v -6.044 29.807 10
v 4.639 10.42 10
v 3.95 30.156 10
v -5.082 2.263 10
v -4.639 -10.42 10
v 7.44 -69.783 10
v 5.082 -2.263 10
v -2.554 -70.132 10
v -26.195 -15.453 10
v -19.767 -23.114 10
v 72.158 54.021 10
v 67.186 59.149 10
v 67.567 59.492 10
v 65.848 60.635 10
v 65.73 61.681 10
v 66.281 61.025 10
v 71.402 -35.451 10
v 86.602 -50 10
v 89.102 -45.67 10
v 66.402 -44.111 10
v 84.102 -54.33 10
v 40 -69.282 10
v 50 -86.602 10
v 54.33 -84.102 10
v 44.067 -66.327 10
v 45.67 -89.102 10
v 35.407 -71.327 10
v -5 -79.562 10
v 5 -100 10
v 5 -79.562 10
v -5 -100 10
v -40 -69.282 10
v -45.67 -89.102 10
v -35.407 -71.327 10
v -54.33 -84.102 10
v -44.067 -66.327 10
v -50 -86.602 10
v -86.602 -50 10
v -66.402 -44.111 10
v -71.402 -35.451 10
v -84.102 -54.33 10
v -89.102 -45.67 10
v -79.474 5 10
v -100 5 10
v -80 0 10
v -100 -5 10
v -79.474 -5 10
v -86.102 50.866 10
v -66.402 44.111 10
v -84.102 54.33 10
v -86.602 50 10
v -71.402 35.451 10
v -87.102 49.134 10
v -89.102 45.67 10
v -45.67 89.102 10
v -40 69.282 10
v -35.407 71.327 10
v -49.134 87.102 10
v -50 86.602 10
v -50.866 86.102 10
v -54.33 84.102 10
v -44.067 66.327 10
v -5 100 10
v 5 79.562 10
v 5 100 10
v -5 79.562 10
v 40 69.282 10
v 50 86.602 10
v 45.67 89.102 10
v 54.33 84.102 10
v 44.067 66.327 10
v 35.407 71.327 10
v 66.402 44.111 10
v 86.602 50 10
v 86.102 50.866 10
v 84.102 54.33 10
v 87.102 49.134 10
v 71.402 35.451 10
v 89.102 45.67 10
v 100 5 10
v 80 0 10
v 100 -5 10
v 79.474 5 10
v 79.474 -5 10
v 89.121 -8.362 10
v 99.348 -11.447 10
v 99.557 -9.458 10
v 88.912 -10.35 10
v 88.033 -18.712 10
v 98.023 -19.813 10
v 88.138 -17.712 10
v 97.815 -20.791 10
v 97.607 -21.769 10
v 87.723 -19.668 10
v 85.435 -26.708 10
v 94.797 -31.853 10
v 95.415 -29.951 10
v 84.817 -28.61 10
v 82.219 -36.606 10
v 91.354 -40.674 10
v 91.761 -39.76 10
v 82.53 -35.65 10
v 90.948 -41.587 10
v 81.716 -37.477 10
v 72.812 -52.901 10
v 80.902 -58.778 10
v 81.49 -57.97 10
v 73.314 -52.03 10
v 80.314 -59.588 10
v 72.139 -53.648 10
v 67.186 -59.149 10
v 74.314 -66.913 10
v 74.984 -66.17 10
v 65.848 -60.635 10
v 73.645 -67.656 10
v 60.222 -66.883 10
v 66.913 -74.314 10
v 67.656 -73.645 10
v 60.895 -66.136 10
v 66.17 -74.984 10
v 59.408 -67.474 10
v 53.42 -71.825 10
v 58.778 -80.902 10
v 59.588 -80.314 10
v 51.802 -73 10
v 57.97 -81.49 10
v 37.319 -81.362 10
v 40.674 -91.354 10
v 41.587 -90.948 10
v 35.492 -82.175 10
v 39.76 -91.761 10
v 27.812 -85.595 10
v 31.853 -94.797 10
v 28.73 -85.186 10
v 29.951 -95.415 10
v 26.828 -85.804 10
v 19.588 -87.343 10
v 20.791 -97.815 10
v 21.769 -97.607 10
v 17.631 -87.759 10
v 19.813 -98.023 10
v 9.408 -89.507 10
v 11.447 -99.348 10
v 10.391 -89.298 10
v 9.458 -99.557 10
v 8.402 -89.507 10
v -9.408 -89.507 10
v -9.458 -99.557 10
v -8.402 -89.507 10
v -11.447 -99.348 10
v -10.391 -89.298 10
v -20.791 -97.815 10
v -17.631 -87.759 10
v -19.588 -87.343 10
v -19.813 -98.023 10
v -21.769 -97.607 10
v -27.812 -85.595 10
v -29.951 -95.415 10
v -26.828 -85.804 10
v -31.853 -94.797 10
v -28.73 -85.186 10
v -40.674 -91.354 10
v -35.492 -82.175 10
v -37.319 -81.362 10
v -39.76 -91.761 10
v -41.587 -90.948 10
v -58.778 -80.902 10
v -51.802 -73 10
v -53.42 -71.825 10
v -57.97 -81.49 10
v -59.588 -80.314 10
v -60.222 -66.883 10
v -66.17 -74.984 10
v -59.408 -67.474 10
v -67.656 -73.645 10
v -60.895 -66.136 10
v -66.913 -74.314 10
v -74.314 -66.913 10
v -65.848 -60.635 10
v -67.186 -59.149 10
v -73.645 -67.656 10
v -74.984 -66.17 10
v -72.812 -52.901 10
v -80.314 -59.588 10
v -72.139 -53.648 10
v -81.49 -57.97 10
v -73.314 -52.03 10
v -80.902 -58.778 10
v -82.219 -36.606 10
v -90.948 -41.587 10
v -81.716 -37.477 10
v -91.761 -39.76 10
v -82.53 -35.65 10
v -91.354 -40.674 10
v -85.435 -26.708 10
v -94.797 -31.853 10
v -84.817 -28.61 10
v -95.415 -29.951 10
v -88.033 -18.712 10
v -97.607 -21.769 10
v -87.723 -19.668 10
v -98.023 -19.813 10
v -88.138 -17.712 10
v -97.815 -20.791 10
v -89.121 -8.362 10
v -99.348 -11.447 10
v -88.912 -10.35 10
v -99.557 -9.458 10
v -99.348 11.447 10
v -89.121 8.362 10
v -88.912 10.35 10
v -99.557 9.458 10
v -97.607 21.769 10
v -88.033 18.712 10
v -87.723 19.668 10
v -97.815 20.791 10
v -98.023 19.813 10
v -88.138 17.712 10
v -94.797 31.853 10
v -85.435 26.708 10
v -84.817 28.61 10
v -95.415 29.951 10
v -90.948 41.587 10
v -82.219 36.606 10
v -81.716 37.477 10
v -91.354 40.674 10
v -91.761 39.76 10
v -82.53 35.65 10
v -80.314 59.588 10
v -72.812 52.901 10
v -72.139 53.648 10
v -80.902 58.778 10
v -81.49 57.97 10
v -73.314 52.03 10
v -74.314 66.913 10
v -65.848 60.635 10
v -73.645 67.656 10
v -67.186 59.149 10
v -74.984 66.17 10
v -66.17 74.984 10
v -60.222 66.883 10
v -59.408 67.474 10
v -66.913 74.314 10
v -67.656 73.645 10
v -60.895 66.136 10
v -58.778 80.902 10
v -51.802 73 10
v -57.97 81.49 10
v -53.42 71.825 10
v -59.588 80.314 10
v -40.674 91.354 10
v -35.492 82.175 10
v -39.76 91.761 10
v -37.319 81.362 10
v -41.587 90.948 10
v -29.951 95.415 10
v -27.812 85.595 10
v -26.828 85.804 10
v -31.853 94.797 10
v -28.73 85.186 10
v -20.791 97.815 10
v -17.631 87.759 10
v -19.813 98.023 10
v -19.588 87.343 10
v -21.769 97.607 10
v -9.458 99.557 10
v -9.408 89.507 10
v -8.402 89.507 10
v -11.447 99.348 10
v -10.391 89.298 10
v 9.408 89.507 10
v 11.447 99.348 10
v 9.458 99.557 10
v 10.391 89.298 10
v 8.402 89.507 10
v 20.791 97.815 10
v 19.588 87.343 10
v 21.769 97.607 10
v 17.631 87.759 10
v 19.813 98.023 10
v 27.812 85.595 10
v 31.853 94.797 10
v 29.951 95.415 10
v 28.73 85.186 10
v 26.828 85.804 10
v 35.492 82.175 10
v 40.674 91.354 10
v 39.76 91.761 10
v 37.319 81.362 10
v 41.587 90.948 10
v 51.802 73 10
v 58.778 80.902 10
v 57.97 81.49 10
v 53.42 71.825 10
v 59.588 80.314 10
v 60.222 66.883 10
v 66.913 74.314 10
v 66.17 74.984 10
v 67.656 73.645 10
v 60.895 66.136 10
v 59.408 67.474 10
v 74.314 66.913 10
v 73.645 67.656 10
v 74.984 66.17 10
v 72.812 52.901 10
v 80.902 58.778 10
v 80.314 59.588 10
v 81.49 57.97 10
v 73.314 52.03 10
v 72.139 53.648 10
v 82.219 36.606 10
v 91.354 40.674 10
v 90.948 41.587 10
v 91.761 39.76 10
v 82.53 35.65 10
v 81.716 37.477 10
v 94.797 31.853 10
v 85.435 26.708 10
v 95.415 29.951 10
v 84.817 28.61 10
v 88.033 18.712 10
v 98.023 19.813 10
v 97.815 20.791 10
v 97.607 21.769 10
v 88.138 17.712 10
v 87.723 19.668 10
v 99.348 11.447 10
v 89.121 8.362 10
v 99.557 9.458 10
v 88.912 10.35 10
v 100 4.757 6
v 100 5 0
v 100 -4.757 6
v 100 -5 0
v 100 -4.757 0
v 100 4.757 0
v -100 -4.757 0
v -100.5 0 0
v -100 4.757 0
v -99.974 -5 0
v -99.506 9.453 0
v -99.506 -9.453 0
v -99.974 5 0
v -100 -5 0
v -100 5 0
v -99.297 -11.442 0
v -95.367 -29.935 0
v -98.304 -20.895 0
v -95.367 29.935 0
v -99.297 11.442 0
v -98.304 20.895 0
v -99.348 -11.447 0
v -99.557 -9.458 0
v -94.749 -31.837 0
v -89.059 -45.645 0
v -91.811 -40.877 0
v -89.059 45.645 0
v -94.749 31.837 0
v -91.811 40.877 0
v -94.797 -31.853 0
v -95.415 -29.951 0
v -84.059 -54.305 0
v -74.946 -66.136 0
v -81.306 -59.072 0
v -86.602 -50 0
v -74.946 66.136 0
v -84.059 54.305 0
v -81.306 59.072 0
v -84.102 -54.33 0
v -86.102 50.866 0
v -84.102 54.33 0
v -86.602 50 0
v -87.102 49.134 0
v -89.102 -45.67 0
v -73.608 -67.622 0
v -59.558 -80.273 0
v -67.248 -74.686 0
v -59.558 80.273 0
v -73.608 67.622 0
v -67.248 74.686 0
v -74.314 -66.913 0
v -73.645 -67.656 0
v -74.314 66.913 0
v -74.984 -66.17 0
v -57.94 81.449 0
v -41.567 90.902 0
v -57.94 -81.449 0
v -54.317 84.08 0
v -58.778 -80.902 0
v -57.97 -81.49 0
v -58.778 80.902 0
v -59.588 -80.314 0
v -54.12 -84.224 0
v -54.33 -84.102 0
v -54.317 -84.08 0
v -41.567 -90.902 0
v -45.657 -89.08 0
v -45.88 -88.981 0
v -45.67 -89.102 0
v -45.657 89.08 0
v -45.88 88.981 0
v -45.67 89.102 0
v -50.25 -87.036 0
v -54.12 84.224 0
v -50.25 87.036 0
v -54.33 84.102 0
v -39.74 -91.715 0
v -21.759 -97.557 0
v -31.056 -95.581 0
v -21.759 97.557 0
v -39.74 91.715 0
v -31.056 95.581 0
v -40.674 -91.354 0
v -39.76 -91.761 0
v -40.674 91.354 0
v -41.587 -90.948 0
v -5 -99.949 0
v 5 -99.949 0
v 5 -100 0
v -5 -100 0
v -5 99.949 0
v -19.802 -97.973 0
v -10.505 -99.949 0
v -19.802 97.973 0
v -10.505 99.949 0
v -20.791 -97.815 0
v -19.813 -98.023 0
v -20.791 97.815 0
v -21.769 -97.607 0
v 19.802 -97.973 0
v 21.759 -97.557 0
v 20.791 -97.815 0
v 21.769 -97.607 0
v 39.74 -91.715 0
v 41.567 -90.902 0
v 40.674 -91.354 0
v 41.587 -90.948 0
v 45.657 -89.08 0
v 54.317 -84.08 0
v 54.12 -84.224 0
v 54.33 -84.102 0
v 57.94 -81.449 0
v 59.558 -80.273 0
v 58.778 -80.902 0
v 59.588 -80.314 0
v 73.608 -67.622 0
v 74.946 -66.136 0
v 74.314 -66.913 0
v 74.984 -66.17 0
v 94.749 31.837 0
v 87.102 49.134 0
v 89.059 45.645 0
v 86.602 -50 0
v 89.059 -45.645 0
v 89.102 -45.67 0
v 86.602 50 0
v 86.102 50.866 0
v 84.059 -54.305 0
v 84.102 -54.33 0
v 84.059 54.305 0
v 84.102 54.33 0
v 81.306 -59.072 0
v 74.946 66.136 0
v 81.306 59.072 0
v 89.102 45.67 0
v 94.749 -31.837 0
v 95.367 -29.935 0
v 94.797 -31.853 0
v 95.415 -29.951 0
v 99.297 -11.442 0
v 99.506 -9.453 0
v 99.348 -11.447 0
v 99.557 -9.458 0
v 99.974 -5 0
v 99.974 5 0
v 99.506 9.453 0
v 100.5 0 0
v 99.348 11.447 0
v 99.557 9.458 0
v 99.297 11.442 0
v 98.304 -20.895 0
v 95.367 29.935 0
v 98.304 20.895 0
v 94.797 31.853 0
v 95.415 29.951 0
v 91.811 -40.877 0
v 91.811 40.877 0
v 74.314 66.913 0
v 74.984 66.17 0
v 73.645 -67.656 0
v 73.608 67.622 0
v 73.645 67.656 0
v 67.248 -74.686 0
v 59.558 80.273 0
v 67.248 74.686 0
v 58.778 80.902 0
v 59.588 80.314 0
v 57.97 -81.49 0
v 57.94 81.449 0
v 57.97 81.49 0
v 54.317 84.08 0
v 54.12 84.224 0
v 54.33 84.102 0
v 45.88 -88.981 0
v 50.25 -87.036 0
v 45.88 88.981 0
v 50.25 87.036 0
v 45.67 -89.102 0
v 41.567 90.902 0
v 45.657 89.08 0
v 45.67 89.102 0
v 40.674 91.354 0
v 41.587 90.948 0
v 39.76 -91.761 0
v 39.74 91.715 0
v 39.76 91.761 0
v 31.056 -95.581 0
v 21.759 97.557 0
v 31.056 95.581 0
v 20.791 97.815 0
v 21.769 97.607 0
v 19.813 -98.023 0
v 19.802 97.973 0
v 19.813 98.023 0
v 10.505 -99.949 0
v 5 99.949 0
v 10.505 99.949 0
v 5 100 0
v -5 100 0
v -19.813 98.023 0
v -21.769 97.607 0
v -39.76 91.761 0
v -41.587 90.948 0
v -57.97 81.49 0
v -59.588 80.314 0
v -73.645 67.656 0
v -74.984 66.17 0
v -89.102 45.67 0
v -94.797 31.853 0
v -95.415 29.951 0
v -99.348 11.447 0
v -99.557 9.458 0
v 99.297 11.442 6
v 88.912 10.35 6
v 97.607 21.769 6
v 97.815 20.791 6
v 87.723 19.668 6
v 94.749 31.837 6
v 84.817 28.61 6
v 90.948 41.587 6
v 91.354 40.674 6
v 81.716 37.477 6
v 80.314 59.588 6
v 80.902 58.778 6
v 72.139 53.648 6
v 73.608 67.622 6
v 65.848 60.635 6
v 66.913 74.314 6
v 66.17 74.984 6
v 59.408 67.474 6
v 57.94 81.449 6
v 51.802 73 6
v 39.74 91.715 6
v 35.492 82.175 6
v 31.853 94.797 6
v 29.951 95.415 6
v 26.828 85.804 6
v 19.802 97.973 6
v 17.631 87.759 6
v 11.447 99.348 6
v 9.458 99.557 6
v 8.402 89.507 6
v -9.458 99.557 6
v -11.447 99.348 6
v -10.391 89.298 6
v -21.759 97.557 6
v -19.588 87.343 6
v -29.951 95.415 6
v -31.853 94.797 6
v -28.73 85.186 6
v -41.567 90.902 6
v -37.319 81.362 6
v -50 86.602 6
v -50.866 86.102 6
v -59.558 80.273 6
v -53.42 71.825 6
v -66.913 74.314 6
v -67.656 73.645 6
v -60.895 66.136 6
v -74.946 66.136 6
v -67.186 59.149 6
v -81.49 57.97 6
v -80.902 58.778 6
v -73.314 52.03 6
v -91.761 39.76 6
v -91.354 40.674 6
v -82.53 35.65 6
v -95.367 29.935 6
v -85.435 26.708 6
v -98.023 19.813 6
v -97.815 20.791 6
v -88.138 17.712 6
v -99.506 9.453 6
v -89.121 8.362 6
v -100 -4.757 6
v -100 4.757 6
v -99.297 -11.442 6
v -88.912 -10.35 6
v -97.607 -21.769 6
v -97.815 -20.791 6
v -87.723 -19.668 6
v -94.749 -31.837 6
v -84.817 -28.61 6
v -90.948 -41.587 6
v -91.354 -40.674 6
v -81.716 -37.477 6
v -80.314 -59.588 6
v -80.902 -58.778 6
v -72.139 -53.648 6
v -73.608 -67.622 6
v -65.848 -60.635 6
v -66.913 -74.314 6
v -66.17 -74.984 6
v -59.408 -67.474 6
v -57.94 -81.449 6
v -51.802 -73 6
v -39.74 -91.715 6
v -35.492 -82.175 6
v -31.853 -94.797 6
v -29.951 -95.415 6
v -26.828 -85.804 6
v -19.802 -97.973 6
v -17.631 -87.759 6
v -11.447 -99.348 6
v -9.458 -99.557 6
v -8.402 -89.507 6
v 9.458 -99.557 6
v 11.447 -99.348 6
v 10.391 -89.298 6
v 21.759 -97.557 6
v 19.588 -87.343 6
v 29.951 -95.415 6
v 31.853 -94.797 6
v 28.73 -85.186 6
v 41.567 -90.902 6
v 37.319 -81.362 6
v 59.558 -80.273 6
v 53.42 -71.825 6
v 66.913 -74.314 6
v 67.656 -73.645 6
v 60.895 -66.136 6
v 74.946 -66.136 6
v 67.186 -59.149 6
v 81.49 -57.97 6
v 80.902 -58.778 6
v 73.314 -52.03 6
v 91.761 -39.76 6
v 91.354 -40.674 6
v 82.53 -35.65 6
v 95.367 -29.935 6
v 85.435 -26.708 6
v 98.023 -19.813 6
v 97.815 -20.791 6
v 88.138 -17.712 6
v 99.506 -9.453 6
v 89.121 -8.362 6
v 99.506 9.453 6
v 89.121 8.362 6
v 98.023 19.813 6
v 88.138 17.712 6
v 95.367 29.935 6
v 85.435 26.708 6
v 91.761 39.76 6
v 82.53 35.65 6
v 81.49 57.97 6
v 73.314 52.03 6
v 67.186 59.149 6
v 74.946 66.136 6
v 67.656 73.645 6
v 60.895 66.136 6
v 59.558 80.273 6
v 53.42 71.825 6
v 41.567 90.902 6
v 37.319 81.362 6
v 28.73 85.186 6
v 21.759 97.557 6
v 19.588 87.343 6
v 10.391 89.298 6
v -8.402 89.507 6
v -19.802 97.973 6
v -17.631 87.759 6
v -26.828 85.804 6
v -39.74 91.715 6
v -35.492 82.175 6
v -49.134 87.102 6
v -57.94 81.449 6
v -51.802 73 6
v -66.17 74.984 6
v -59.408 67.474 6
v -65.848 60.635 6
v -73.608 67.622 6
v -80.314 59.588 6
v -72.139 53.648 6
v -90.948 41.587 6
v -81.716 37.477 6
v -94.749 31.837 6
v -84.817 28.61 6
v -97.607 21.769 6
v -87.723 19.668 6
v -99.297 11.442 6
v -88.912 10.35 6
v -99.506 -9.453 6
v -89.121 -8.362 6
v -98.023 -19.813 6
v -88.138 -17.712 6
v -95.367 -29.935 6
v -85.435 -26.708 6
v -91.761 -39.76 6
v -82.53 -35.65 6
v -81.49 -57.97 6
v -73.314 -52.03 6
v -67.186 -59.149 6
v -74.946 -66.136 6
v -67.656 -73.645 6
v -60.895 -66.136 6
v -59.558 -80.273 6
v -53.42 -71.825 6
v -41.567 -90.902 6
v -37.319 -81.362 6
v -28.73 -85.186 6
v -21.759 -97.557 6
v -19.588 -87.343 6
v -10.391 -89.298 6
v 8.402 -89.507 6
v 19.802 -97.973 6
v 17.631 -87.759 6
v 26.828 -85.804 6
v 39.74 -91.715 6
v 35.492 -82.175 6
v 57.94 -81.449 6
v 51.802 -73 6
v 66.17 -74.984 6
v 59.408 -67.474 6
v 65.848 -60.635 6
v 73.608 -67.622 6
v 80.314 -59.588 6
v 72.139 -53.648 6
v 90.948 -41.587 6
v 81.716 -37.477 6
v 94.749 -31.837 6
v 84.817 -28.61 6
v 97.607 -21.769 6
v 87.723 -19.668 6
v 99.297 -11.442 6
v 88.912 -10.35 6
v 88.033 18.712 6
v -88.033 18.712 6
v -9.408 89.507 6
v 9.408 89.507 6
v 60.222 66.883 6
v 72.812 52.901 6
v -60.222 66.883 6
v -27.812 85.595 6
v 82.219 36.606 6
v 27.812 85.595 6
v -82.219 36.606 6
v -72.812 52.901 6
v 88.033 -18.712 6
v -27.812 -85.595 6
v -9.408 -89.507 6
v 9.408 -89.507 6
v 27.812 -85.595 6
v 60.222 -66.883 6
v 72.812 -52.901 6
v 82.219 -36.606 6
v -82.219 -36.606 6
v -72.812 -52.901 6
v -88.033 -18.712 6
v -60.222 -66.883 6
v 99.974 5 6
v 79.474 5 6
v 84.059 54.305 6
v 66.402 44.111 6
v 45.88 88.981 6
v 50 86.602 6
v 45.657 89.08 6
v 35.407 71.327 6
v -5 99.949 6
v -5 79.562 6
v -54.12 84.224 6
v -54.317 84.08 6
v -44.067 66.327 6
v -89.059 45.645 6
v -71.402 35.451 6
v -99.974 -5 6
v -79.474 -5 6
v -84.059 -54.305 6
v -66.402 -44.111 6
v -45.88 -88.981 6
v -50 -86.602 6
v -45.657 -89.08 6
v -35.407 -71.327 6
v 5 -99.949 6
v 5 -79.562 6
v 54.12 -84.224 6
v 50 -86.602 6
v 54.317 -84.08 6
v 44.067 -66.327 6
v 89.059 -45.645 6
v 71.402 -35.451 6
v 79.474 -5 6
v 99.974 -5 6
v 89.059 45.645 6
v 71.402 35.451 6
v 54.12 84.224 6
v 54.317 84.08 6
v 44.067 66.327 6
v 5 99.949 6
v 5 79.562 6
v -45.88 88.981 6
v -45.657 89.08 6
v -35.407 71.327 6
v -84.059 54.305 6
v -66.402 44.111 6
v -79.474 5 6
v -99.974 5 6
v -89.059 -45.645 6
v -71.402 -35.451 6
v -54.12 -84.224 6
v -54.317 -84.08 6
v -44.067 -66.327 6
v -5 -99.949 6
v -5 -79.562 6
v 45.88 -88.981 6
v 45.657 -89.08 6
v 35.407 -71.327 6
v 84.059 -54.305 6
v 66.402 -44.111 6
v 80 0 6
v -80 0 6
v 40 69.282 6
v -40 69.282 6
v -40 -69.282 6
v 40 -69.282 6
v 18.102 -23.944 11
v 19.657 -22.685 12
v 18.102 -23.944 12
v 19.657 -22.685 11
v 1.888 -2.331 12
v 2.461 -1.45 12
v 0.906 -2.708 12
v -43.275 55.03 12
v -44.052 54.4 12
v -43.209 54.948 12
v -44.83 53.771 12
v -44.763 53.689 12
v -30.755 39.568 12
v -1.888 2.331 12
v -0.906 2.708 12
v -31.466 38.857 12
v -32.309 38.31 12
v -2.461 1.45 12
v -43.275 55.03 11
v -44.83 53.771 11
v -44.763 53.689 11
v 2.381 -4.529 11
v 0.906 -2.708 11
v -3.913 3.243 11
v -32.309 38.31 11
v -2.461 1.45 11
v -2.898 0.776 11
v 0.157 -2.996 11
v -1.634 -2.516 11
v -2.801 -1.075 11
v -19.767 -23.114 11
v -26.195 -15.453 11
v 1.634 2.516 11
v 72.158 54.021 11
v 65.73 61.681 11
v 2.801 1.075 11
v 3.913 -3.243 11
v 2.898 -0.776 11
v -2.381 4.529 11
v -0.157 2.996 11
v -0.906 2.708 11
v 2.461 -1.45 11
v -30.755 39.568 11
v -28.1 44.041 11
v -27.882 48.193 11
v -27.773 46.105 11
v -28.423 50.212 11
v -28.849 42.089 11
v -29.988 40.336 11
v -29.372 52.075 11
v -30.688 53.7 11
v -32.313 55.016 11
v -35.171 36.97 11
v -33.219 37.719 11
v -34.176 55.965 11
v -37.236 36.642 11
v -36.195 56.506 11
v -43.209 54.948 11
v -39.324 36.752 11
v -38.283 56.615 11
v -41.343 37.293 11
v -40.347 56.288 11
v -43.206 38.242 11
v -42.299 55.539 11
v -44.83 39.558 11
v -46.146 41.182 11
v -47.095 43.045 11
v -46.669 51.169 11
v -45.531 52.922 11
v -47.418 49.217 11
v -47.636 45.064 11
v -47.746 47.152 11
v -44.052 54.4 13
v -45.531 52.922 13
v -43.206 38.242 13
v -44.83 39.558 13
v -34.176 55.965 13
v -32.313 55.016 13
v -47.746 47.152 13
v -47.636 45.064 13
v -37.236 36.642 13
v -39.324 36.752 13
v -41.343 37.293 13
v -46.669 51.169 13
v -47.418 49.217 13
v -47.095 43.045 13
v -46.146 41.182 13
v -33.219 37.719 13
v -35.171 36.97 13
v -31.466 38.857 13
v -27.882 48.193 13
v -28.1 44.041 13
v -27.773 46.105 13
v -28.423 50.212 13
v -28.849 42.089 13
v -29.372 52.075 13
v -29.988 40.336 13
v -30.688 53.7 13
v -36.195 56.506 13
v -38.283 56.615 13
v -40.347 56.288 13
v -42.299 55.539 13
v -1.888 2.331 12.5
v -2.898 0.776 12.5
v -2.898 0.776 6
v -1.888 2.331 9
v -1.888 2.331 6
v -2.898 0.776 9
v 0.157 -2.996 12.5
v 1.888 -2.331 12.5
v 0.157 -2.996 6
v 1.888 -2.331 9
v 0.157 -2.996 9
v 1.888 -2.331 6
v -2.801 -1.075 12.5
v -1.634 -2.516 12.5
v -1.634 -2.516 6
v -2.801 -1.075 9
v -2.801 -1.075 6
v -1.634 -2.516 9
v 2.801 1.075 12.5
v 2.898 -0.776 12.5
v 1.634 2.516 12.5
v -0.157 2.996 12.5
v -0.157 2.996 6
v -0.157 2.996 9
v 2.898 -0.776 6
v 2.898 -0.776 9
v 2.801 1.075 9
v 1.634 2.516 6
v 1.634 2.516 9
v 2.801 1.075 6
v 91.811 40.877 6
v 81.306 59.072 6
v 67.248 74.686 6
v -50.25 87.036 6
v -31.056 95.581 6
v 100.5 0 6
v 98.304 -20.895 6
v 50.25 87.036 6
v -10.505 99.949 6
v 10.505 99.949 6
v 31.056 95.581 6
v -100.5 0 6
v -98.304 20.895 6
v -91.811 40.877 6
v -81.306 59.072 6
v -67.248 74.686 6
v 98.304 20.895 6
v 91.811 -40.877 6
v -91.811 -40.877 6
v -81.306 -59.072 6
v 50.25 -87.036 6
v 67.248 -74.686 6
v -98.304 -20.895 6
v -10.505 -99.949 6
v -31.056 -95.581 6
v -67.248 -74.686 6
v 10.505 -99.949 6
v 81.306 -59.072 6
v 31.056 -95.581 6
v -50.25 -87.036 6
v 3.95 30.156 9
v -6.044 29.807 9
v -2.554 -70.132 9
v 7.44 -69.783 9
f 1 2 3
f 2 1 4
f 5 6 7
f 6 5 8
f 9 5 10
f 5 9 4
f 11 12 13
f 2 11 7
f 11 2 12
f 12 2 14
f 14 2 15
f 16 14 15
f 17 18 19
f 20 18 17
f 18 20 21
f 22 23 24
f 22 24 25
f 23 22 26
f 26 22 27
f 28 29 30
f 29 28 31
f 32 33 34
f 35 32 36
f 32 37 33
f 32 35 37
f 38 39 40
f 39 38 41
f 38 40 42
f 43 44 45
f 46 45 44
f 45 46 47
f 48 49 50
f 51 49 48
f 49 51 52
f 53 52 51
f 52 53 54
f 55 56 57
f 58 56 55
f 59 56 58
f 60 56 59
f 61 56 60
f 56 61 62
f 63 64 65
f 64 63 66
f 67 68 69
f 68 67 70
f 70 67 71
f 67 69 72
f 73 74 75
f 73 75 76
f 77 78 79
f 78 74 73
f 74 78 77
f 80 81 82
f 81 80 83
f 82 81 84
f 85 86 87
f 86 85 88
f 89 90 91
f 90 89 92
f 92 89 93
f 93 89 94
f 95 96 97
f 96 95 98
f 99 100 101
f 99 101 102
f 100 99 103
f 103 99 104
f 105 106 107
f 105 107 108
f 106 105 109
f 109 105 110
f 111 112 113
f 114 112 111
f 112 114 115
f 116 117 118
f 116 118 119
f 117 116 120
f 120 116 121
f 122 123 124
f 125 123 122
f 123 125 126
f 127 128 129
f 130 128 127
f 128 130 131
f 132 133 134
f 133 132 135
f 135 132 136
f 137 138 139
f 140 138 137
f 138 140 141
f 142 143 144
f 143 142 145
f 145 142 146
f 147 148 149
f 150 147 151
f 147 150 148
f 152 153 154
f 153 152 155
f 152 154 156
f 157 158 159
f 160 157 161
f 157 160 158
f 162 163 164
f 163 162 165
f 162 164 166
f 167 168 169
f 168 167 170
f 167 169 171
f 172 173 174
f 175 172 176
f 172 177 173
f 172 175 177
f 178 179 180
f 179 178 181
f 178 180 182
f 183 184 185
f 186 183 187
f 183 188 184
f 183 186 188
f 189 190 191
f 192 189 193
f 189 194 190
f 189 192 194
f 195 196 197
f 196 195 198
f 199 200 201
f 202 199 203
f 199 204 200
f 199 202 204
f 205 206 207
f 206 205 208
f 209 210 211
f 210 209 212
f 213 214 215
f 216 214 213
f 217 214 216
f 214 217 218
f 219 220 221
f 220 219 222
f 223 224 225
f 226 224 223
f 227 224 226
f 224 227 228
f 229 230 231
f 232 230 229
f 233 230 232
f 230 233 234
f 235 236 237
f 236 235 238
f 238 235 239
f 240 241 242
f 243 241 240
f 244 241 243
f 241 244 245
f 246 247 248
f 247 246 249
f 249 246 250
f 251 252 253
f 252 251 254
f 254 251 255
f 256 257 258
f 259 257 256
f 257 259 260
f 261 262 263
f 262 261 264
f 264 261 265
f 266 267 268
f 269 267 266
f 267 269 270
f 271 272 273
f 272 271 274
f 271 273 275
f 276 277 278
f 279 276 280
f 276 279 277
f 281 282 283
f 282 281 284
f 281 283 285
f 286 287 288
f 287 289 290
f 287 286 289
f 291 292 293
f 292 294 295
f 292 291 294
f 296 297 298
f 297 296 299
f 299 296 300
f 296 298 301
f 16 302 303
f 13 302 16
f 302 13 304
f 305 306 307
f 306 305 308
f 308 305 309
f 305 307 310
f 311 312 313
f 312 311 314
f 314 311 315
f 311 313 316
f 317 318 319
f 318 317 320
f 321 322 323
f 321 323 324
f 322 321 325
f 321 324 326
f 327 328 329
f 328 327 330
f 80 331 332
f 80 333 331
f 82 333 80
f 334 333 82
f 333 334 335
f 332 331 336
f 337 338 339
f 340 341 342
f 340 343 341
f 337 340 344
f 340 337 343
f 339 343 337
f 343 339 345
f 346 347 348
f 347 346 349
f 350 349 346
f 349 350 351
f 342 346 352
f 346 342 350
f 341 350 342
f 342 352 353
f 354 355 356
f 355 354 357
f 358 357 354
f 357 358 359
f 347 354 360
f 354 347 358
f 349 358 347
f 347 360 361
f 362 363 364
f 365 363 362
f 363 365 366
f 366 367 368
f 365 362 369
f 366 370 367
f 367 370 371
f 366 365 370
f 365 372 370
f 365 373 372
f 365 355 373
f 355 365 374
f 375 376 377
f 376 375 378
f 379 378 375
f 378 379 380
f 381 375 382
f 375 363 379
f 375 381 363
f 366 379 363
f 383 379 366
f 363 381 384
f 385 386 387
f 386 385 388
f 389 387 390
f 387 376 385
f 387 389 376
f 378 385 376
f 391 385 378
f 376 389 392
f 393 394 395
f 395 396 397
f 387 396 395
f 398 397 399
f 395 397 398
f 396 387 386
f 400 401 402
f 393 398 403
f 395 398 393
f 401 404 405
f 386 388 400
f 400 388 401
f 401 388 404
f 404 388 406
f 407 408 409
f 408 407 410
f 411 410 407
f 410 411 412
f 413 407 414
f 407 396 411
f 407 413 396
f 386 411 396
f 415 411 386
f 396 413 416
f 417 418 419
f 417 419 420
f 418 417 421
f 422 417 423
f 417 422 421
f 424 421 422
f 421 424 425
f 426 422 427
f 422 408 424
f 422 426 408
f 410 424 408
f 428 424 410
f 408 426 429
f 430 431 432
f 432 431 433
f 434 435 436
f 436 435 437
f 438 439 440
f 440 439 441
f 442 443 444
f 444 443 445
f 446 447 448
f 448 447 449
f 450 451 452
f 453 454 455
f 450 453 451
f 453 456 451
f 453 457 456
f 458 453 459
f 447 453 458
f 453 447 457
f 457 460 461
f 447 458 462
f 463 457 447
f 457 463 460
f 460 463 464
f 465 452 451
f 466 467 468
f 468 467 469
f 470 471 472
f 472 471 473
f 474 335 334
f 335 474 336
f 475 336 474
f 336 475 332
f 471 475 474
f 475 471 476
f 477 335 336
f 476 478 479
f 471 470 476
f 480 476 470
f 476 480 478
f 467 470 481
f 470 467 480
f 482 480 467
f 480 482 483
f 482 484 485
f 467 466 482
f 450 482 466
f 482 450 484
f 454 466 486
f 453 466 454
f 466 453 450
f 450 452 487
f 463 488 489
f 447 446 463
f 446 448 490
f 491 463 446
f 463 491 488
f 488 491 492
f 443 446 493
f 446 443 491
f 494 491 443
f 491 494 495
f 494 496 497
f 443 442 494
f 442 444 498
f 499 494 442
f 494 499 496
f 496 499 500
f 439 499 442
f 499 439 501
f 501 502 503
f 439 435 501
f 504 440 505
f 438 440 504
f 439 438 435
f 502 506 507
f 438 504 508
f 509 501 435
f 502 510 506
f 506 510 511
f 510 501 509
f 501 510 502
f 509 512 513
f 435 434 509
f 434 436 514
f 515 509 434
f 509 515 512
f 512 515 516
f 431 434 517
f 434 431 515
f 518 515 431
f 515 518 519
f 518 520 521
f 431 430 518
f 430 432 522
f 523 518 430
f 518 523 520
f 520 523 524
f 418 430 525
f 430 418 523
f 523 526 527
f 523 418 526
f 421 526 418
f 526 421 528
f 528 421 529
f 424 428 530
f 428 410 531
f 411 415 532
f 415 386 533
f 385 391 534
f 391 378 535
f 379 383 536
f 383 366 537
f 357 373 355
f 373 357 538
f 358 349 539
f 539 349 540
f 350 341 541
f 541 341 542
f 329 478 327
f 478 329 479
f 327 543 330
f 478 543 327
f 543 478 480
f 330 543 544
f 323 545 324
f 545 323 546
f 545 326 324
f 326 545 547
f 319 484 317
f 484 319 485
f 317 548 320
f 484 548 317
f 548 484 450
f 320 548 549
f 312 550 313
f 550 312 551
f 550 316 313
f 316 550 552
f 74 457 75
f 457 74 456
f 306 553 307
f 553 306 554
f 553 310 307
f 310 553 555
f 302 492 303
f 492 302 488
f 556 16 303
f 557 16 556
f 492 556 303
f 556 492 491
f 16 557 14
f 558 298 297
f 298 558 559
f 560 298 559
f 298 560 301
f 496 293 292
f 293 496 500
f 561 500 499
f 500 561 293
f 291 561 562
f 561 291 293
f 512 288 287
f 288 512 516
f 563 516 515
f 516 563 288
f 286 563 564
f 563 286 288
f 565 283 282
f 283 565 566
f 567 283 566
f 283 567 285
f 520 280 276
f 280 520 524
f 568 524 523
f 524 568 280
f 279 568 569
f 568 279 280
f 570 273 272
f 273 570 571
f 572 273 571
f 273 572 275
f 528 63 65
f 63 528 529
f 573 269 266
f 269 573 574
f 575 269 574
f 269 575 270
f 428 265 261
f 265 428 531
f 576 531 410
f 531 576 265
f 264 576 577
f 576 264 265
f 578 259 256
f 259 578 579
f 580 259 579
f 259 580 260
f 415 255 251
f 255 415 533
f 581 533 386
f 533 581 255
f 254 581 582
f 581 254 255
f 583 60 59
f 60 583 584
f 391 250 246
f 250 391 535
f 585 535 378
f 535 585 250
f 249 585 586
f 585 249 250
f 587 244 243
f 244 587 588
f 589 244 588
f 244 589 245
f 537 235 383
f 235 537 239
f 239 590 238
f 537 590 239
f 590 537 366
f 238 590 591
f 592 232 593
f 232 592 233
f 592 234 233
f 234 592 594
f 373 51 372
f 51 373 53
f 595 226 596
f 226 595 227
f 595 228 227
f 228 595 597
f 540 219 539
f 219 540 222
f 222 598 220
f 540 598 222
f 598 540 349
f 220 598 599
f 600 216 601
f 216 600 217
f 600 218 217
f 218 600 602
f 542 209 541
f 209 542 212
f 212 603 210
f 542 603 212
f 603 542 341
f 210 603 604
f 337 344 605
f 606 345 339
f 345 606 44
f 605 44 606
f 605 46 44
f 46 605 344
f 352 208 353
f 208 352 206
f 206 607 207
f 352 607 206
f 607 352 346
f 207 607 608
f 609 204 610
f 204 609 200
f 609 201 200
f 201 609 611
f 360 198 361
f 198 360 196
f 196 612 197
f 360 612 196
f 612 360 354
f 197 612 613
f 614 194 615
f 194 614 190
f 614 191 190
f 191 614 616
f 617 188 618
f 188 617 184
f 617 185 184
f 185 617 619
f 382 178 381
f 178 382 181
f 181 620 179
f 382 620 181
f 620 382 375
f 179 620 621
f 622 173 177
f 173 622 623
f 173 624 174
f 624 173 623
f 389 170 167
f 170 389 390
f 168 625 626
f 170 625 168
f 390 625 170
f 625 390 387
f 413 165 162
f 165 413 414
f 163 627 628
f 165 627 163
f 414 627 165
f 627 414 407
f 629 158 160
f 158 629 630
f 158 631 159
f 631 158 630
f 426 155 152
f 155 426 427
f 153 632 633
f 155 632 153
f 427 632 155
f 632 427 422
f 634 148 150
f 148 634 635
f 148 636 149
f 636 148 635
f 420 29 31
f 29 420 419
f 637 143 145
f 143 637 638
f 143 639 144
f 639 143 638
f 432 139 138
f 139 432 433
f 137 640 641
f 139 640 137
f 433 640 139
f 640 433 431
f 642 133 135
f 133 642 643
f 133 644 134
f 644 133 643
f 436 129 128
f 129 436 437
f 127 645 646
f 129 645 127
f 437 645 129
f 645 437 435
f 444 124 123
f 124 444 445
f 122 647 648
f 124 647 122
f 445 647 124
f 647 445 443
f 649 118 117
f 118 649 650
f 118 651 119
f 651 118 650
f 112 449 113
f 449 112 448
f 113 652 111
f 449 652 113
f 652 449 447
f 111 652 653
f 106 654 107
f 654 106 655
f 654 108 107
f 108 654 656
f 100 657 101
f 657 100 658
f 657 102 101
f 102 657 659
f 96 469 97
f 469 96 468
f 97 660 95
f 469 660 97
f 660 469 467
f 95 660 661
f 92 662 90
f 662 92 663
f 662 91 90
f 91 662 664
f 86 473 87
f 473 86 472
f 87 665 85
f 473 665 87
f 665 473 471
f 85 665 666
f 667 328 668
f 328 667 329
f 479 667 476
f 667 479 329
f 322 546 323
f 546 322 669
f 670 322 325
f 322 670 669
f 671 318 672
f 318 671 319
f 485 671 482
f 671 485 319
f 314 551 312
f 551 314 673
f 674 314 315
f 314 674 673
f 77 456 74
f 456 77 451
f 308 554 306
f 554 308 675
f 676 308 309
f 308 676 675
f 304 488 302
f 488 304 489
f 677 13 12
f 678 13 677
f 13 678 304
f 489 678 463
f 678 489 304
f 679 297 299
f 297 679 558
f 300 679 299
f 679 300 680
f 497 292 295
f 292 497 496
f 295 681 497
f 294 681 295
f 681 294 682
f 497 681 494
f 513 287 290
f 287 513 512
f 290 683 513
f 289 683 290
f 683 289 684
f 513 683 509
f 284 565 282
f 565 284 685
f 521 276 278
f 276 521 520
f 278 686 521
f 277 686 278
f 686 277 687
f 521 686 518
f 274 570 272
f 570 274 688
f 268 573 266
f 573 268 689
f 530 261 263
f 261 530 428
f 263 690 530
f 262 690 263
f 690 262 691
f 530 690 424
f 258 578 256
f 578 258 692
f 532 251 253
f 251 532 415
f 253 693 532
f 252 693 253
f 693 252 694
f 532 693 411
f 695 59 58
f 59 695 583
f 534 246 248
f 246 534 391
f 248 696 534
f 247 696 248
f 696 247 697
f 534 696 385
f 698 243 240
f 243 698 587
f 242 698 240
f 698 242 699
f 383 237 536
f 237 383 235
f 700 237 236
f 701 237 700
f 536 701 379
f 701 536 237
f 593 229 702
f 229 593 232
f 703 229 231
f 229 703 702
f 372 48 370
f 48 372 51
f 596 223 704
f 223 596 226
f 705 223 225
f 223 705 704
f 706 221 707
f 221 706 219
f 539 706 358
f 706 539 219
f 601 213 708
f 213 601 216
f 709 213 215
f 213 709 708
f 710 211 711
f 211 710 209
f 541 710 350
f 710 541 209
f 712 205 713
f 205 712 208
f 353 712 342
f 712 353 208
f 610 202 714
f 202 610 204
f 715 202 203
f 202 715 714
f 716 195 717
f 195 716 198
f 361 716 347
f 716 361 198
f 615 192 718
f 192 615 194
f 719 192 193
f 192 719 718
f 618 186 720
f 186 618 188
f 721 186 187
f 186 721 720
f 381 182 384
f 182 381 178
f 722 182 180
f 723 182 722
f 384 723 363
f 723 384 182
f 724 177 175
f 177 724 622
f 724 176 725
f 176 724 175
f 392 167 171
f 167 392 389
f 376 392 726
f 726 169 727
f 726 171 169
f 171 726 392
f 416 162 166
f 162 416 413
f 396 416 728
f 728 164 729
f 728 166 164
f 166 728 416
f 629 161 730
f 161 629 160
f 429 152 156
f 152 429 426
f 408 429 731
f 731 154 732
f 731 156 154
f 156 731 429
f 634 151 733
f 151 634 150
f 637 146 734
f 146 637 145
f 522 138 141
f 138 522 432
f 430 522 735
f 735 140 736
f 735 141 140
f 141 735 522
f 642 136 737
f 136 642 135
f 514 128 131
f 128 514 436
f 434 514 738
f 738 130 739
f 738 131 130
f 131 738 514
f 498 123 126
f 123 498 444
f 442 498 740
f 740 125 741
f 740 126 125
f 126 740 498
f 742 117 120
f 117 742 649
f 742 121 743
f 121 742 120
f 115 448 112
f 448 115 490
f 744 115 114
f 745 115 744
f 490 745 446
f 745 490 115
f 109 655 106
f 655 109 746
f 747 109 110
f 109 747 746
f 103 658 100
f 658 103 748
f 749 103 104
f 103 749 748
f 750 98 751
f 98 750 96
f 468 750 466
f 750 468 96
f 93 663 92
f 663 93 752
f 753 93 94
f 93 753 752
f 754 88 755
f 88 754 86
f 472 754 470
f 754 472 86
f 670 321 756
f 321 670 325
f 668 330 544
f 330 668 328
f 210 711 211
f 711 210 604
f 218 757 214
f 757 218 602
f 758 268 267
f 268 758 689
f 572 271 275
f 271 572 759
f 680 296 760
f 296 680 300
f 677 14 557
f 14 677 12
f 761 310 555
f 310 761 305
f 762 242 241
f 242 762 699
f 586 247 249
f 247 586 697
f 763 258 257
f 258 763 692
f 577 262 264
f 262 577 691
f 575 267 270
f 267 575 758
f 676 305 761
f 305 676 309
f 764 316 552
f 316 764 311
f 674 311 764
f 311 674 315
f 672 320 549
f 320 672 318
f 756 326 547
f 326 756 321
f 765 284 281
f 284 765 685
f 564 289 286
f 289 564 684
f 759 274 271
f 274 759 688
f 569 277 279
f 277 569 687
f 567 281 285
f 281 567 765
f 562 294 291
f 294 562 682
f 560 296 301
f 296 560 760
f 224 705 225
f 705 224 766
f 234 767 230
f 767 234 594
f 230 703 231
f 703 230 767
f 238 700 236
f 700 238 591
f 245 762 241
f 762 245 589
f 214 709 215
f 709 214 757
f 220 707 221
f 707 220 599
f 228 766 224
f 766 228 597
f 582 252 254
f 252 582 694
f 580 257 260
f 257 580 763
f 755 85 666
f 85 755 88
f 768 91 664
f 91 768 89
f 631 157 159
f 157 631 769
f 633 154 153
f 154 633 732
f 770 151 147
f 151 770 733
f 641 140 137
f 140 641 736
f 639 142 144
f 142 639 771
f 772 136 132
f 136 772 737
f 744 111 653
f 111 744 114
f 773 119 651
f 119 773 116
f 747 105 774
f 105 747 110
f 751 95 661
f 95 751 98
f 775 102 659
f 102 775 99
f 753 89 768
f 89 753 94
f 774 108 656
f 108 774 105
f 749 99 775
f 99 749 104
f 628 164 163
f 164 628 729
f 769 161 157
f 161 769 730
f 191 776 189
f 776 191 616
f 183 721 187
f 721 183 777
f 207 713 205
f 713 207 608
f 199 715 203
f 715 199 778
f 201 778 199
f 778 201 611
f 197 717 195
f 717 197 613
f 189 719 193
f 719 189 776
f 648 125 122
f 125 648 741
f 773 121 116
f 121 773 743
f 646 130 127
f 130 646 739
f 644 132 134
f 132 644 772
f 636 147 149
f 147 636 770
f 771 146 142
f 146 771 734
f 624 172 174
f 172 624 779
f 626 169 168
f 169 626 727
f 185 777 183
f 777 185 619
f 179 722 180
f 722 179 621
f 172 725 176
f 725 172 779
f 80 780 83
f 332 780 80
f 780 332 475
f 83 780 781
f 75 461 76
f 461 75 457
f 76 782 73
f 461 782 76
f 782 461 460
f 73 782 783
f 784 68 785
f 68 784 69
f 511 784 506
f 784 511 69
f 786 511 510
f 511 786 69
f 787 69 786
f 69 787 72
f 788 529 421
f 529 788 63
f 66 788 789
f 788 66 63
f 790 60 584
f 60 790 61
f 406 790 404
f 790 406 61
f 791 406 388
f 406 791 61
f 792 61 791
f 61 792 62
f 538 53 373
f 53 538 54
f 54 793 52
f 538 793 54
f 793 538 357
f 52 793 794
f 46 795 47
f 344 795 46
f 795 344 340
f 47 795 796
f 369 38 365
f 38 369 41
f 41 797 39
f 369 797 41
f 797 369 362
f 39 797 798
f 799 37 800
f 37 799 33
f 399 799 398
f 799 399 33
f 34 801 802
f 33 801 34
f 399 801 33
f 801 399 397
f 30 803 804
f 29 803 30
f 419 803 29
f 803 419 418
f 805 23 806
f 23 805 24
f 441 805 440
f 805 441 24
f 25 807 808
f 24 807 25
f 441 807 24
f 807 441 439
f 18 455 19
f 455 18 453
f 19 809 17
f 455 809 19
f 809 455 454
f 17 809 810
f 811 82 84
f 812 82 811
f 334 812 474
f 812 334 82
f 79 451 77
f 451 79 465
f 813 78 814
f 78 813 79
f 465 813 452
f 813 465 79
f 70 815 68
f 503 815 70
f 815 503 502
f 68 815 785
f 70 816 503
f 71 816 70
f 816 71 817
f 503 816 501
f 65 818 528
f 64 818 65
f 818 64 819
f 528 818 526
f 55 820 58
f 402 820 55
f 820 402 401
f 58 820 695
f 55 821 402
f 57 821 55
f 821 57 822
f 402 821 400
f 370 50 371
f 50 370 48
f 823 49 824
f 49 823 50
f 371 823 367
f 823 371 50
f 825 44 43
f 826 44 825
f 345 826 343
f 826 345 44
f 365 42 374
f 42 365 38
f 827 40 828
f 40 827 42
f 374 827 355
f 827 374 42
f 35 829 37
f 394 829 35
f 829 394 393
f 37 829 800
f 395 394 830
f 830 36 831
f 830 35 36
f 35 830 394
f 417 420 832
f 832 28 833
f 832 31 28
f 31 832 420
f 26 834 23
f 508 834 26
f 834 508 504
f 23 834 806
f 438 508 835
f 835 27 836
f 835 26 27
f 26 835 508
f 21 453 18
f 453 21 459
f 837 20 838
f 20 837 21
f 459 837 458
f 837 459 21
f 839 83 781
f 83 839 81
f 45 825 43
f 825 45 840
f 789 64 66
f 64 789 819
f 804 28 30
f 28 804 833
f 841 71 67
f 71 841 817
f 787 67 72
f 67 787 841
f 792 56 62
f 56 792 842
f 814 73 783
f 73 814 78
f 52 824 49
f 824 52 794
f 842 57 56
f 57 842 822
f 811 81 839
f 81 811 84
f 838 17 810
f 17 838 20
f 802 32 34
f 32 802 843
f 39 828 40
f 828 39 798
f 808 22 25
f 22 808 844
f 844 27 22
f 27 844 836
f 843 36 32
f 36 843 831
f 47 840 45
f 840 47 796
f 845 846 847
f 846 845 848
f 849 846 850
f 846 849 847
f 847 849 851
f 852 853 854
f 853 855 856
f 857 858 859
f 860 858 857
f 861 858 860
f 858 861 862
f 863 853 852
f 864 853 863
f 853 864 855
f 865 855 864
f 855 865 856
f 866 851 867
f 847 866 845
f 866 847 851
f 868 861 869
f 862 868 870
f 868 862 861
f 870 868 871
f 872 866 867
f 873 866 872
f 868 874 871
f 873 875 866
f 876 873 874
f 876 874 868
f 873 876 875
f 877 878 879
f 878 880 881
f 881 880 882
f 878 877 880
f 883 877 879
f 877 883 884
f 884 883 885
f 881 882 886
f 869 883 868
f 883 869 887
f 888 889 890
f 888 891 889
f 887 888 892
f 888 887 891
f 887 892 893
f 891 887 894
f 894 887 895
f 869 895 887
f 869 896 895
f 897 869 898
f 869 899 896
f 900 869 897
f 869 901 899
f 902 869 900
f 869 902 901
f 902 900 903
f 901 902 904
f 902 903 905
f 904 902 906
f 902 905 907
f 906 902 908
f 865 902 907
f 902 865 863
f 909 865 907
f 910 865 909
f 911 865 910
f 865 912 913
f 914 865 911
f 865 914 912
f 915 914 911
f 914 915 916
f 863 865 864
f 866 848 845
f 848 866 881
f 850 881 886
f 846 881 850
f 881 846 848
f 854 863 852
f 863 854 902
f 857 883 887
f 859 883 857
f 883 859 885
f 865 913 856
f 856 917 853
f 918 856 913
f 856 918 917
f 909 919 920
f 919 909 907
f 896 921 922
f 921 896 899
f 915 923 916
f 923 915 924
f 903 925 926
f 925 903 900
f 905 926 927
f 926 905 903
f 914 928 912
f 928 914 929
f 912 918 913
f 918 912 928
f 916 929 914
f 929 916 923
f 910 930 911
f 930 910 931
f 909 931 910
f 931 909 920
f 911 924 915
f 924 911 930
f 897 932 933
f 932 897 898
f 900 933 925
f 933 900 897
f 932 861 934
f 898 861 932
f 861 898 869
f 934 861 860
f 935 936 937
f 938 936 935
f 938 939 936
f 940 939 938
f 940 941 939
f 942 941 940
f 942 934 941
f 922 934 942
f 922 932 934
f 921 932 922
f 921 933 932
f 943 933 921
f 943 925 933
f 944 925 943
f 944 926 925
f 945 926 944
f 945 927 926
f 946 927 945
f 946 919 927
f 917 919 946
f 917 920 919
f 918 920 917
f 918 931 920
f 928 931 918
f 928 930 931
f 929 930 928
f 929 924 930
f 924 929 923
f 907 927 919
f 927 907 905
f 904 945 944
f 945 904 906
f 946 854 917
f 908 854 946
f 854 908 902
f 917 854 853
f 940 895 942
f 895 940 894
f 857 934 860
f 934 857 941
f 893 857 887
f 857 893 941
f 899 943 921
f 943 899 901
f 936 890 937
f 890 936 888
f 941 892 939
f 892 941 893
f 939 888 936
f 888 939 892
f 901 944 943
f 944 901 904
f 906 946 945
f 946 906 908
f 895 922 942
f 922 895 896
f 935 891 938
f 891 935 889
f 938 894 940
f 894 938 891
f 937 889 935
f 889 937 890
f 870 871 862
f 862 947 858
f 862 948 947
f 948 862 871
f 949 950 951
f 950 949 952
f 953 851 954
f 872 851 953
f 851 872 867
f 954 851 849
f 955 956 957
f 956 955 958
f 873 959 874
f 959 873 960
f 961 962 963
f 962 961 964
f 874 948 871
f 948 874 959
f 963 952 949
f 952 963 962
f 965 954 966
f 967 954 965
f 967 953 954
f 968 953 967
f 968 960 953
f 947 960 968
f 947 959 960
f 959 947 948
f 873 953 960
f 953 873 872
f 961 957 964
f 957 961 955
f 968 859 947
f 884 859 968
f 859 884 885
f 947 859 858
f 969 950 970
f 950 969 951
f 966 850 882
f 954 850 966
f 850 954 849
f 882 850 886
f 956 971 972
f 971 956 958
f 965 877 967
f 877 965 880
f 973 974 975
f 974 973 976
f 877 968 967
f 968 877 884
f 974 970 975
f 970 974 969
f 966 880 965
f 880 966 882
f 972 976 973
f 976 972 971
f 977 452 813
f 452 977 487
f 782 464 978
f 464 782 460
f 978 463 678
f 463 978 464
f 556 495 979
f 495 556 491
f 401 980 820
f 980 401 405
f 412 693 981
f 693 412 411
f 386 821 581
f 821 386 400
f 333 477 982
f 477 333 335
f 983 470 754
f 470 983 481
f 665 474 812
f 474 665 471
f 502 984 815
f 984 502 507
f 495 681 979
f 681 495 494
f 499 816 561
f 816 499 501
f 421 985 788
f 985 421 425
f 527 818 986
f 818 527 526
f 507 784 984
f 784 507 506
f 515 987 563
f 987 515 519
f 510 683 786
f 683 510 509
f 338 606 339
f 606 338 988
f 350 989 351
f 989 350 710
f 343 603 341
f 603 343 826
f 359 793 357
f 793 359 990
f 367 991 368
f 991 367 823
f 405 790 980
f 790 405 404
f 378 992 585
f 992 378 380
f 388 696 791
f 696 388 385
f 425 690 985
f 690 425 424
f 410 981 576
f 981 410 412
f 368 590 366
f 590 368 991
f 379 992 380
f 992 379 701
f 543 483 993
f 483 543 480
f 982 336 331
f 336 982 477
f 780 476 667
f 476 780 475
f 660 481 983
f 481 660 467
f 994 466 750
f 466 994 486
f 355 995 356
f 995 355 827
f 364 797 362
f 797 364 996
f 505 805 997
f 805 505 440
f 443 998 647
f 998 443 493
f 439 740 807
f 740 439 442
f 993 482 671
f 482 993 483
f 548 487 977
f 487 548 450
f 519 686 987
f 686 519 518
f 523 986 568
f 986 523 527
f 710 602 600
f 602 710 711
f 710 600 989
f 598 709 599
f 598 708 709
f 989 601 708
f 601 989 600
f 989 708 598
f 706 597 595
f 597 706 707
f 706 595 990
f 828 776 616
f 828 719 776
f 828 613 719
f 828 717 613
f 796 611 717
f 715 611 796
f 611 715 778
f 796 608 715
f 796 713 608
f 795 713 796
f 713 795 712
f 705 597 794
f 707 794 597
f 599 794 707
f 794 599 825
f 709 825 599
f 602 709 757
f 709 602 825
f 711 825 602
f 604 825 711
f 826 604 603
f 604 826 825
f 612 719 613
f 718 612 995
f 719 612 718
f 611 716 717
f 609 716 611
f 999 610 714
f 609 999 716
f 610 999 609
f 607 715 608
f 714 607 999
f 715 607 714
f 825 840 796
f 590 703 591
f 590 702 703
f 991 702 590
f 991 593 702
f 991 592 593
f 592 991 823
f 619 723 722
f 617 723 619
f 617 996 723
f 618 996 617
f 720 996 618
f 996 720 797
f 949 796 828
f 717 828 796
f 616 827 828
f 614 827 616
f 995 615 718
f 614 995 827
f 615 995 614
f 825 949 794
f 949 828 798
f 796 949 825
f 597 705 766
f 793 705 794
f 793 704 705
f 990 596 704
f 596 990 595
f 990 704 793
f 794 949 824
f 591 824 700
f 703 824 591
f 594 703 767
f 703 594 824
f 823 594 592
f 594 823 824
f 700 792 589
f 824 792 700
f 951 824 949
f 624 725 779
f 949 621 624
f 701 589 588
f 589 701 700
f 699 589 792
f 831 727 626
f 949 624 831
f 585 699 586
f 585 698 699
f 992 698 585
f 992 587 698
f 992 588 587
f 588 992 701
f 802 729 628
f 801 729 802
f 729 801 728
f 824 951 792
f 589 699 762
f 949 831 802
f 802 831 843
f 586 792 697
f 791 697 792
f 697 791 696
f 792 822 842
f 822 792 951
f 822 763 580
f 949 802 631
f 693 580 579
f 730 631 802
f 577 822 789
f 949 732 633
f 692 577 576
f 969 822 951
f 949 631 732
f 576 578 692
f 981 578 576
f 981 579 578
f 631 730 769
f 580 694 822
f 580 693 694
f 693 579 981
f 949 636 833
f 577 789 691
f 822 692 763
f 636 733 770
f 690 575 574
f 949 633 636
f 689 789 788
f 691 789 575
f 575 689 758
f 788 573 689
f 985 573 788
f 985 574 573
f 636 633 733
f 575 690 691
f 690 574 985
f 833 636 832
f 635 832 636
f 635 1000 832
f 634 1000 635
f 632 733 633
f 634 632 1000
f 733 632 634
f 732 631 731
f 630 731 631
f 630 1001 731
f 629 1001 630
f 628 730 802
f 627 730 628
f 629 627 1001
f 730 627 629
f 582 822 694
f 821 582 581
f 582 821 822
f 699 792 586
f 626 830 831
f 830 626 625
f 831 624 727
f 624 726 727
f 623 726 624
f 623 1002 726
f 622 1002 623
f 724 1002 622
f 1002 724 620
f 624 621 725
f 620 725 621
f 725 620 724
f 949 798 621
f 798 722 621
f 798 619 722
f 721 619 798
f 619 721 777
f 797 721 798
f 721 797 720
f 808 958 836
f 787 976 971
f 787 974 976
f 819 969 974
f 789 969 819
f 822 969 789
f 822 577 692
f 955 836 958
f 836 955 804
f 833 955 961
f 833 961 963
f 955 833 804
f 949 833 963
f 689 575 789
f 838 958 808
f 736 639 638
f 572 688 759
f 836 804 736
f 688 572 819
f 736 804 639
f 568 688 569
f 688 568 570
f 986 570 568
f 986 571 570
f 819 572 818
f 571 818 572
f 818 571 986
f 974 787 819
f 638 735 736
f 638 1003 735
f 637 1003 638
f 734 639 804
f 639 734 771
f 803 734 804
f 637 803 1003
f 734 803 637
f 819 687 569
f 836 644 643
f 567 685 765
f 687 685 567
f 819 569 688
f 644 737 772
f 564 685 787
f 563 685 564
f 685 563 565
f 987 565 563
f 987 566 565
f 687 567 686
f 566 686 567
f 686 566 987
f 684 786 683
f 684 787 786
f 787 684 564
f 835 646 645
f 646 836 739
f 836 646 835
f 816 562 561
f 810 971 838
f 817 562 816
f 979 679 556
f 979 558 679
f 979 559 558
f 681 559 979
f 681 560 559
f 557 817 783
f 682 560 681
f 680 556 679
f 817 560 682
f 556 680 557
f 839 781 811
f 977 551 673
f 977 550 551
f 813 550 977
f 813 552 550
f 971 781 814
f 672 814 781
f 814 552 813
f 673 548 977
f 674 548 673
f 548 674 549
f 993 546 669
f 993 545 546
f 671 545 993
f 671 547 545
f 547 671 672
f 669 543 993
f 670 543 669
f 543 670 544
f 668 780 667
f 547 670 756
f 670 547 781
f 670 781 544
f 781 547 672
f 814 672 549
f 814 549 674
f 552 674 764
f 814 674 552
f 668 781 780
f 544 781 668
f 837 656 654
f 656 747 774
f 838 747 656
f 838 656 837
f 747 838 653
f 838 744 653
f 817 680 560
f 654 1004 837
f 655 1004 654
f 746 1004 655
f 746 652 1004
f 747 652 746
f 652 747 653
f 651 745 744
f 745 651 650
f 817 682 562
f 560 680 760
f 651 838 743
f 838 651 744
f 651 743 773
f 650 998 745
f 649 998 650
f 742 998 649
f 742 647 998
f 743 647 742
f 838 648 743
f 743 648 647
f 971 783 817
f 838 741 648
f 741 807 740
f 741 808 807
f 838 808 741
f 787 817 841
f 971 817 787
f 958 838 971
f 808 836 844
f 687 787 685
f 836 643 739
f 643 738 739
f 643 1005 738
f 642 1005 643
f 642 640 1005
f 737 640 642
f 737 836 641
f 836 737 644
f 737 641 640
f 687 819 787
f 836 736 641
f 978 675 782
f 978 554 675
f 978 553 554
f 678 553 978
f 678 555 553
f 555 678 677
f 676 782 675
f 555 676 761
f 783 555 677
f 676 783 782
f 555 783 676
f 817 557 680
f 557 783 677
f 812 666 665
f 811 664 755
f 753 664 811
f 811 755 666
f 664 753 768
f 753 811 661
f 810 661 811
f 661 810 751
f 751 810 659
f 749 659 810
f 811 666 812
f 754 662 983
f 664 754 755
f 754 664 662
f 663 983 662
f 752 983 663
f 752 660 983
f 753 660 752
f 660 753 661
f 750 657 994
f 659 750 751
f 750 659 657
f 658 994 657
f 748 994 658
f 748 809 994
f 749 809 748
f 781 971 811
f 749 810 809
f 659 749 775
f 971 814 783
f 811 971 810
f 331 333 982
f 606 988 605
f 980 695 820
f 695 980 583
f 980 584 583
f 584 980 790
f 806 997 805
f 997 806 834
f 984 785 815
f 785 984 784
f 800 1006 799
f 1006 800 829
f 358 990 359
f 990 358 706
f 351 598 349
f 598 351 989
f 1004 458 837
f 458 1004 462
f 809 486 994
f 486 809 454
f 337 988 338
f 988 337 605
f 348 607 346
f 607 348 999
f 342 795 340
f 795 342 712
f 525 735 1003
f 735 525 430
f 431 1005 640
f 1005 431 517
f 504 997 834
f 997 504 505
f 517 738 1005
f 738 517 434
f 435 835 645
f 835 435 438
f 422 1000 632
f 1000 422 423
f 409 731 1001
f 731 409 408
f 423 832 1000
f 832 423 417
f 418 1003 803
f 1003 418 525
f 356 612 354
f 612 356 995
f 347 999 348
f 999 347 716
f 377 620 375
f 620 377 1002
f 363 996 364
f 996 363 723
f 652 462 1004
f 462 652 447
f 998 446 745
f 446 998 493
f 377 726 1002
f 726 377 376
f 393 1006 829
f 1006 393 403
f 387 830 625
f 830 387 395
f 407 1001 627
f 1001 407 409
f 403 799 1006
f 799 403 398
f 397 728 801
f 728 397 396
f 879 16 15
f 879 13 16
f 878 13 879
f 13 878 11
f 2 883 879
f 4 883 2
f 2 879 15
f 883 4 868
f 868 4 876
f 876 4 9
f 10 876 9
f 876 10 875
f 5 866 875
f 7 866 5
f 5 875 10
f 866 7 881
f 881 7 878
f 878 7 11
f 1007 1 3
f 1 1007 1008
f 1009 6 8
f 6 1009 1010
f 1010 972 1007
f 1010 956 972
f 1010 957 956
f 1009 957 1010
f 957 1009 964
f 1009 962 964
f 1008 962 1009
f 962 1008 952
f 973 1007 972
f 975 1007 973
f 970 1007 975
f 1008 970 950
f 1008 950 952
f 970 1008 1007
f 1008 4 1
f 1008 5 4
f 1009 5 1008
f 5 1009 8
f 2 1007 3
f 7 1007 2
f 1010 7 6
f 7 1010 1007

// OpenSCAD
//cylinder(10,100,100);
module big() {
    for(x =[0:11]){
        translate([0,0,0])
        rotate([0,0,x*30])    
        cube([100,5,10]);   
        
    };

    for(x =[0:11]){
        
        rotate([0,0,x*30])  
        translate([0,-5,0])  
        cube([100,5,10]);   
        
    };
};

module small() {
    for(x =[0:60]){
        translate([0,0,0])
        rotate([0,0,x*6])    
        cube([100,1,10]);   
        
    };

    for(x =[0:60]){
        
        rotate([0,0,x*6])  
        translate([0,-1,0])  
        cube([100,1,10]);   
        
    };
};

module small_diff() {
    difference() {    
        small();
        translate([0,0,-10])
        cylinder(30,90,90);    
    };
};

module big_diff() {
    difference() {    
        big();
        translate([0,0,-10])
        cylinder(30,80,80);    
    };
};

module seconder() {
    translate([-30,-1,11])
    cube([100,2,1]);
    translate([60,0,11])
    cylinder(2,10,10);
    cylinder(12.5,3,3);
};

module seconder_rotate(x) {
    rotate([0,0,x])
    seconder();
    
};

module minuter() {
    translate([-30,-5,10])
    cube([120,10,1]);
};

module minuter_rotate(x) {
    rotate([0,0,x])
    minuter();    
};

module hour() {
    translate([-30,-5,9])
    cube([100,10,1]);
};

module hour_rotate(x) {
    rotate([0,0,x])
    hour();    
};

small_diff();
big_diff();
cylinder(6,100.5,100.5);
seconder_rotate(129);
minuter_rotate(40);
hour_rotate(272);
